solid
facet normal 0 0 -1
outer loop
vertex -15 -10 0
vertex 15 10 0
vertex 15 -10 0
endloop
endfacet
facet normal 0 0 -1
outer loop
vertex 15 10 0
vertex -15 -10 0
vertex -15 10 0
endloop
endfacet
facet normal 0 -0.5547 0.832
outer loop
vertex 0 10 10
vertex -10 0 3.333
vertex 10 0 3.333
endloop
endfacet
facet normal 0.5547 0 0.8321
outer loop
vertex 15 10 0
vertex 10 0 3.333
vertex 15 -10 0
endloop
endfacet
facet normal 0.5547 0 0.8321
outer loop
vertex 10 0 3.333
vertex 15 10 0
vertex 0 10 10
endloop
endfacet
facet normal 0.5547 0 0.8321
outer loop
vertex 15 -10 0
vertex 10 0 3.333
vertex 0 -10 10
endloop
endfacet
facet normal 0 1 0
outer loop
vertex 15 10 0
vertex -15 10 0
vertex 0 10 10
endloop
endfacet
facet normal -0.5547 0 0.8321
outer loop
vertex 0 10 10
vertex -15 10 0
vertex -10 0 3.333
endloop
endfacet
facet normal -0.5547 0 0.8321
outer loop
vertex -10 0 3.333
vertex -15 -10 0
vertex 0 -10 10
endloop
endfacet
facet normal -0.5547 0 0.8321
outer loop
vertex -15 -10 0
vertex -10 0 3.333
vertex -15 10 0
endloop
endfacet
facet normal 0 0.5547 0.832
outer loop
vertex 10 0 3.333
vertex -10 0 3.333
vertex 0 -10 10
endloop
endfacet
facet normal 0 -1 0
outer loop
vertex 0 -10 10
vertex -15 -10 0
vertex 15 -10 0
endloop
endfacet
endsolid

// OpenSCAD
// 基础参数
height = 10;           // 总高度
top_radius = 15;       // 顶面外切圆半径
$fn = 100;             // 平滑度

// 创建单个pyramid
module single_pyramid() {
    // 定义顶点
    points = [
        // 底点
        [0, 0, height],         // 0: 底面点
        
        // 顶面的四个顶点（调整后使一个侧面垂直于顶面）
        [-top_radius, -top_radius, 0], // 1: 左后
        [top_radius, -top_radius, 0],  // 2: 右后
        [top_radius, 0, 0],           // 3: 右前（y坐标为0使侧面垂直）
        [-top_radius, 0, 0]           // 4: 左前（y坐标为0使侧面垂直）
    ];
    
    // 定义面
    faces = [
        [4, 3, 2, 1],    // 顶面（正方形）
        [0, 1, 2],       // 后侧面（三角形）
        [0, 2, 3],       // 右侧面（三角形）
        [0, 3, 4],       // 前侧面（三角形，垂直于顶面）
        [0, 4, 1]        // 左侧面（三角形）
    ];
    
    // 创建多面体
    polyhedron(
        points = points,
        faces = faces,
        convexity = 10
    );
}

// 创建完整的双锥体
module double_pyramid() {
    // 第一个pyramid
    translate([0, 10, 0])
        single_pyramid();
    
    // 第二个pyramid（绕X轴旋转180度）
    rotate([0,0,180])
    translate([0, 10, 0])
        single_pyramid();
}

// 显示模型
double_pyramid();

/* 参数说明：
 * height: 总高度（100mm）
 * top_radius: 顶面外切圆半径（15mm）
 * 
 * 几何特征：
 * - 每个pyramid有一个垂直于顶面的侧面
 * - 两个pyramid关于垂直面对称
 * - 每个pyramid由4个三角形侧面和1个顶面组成
 */
